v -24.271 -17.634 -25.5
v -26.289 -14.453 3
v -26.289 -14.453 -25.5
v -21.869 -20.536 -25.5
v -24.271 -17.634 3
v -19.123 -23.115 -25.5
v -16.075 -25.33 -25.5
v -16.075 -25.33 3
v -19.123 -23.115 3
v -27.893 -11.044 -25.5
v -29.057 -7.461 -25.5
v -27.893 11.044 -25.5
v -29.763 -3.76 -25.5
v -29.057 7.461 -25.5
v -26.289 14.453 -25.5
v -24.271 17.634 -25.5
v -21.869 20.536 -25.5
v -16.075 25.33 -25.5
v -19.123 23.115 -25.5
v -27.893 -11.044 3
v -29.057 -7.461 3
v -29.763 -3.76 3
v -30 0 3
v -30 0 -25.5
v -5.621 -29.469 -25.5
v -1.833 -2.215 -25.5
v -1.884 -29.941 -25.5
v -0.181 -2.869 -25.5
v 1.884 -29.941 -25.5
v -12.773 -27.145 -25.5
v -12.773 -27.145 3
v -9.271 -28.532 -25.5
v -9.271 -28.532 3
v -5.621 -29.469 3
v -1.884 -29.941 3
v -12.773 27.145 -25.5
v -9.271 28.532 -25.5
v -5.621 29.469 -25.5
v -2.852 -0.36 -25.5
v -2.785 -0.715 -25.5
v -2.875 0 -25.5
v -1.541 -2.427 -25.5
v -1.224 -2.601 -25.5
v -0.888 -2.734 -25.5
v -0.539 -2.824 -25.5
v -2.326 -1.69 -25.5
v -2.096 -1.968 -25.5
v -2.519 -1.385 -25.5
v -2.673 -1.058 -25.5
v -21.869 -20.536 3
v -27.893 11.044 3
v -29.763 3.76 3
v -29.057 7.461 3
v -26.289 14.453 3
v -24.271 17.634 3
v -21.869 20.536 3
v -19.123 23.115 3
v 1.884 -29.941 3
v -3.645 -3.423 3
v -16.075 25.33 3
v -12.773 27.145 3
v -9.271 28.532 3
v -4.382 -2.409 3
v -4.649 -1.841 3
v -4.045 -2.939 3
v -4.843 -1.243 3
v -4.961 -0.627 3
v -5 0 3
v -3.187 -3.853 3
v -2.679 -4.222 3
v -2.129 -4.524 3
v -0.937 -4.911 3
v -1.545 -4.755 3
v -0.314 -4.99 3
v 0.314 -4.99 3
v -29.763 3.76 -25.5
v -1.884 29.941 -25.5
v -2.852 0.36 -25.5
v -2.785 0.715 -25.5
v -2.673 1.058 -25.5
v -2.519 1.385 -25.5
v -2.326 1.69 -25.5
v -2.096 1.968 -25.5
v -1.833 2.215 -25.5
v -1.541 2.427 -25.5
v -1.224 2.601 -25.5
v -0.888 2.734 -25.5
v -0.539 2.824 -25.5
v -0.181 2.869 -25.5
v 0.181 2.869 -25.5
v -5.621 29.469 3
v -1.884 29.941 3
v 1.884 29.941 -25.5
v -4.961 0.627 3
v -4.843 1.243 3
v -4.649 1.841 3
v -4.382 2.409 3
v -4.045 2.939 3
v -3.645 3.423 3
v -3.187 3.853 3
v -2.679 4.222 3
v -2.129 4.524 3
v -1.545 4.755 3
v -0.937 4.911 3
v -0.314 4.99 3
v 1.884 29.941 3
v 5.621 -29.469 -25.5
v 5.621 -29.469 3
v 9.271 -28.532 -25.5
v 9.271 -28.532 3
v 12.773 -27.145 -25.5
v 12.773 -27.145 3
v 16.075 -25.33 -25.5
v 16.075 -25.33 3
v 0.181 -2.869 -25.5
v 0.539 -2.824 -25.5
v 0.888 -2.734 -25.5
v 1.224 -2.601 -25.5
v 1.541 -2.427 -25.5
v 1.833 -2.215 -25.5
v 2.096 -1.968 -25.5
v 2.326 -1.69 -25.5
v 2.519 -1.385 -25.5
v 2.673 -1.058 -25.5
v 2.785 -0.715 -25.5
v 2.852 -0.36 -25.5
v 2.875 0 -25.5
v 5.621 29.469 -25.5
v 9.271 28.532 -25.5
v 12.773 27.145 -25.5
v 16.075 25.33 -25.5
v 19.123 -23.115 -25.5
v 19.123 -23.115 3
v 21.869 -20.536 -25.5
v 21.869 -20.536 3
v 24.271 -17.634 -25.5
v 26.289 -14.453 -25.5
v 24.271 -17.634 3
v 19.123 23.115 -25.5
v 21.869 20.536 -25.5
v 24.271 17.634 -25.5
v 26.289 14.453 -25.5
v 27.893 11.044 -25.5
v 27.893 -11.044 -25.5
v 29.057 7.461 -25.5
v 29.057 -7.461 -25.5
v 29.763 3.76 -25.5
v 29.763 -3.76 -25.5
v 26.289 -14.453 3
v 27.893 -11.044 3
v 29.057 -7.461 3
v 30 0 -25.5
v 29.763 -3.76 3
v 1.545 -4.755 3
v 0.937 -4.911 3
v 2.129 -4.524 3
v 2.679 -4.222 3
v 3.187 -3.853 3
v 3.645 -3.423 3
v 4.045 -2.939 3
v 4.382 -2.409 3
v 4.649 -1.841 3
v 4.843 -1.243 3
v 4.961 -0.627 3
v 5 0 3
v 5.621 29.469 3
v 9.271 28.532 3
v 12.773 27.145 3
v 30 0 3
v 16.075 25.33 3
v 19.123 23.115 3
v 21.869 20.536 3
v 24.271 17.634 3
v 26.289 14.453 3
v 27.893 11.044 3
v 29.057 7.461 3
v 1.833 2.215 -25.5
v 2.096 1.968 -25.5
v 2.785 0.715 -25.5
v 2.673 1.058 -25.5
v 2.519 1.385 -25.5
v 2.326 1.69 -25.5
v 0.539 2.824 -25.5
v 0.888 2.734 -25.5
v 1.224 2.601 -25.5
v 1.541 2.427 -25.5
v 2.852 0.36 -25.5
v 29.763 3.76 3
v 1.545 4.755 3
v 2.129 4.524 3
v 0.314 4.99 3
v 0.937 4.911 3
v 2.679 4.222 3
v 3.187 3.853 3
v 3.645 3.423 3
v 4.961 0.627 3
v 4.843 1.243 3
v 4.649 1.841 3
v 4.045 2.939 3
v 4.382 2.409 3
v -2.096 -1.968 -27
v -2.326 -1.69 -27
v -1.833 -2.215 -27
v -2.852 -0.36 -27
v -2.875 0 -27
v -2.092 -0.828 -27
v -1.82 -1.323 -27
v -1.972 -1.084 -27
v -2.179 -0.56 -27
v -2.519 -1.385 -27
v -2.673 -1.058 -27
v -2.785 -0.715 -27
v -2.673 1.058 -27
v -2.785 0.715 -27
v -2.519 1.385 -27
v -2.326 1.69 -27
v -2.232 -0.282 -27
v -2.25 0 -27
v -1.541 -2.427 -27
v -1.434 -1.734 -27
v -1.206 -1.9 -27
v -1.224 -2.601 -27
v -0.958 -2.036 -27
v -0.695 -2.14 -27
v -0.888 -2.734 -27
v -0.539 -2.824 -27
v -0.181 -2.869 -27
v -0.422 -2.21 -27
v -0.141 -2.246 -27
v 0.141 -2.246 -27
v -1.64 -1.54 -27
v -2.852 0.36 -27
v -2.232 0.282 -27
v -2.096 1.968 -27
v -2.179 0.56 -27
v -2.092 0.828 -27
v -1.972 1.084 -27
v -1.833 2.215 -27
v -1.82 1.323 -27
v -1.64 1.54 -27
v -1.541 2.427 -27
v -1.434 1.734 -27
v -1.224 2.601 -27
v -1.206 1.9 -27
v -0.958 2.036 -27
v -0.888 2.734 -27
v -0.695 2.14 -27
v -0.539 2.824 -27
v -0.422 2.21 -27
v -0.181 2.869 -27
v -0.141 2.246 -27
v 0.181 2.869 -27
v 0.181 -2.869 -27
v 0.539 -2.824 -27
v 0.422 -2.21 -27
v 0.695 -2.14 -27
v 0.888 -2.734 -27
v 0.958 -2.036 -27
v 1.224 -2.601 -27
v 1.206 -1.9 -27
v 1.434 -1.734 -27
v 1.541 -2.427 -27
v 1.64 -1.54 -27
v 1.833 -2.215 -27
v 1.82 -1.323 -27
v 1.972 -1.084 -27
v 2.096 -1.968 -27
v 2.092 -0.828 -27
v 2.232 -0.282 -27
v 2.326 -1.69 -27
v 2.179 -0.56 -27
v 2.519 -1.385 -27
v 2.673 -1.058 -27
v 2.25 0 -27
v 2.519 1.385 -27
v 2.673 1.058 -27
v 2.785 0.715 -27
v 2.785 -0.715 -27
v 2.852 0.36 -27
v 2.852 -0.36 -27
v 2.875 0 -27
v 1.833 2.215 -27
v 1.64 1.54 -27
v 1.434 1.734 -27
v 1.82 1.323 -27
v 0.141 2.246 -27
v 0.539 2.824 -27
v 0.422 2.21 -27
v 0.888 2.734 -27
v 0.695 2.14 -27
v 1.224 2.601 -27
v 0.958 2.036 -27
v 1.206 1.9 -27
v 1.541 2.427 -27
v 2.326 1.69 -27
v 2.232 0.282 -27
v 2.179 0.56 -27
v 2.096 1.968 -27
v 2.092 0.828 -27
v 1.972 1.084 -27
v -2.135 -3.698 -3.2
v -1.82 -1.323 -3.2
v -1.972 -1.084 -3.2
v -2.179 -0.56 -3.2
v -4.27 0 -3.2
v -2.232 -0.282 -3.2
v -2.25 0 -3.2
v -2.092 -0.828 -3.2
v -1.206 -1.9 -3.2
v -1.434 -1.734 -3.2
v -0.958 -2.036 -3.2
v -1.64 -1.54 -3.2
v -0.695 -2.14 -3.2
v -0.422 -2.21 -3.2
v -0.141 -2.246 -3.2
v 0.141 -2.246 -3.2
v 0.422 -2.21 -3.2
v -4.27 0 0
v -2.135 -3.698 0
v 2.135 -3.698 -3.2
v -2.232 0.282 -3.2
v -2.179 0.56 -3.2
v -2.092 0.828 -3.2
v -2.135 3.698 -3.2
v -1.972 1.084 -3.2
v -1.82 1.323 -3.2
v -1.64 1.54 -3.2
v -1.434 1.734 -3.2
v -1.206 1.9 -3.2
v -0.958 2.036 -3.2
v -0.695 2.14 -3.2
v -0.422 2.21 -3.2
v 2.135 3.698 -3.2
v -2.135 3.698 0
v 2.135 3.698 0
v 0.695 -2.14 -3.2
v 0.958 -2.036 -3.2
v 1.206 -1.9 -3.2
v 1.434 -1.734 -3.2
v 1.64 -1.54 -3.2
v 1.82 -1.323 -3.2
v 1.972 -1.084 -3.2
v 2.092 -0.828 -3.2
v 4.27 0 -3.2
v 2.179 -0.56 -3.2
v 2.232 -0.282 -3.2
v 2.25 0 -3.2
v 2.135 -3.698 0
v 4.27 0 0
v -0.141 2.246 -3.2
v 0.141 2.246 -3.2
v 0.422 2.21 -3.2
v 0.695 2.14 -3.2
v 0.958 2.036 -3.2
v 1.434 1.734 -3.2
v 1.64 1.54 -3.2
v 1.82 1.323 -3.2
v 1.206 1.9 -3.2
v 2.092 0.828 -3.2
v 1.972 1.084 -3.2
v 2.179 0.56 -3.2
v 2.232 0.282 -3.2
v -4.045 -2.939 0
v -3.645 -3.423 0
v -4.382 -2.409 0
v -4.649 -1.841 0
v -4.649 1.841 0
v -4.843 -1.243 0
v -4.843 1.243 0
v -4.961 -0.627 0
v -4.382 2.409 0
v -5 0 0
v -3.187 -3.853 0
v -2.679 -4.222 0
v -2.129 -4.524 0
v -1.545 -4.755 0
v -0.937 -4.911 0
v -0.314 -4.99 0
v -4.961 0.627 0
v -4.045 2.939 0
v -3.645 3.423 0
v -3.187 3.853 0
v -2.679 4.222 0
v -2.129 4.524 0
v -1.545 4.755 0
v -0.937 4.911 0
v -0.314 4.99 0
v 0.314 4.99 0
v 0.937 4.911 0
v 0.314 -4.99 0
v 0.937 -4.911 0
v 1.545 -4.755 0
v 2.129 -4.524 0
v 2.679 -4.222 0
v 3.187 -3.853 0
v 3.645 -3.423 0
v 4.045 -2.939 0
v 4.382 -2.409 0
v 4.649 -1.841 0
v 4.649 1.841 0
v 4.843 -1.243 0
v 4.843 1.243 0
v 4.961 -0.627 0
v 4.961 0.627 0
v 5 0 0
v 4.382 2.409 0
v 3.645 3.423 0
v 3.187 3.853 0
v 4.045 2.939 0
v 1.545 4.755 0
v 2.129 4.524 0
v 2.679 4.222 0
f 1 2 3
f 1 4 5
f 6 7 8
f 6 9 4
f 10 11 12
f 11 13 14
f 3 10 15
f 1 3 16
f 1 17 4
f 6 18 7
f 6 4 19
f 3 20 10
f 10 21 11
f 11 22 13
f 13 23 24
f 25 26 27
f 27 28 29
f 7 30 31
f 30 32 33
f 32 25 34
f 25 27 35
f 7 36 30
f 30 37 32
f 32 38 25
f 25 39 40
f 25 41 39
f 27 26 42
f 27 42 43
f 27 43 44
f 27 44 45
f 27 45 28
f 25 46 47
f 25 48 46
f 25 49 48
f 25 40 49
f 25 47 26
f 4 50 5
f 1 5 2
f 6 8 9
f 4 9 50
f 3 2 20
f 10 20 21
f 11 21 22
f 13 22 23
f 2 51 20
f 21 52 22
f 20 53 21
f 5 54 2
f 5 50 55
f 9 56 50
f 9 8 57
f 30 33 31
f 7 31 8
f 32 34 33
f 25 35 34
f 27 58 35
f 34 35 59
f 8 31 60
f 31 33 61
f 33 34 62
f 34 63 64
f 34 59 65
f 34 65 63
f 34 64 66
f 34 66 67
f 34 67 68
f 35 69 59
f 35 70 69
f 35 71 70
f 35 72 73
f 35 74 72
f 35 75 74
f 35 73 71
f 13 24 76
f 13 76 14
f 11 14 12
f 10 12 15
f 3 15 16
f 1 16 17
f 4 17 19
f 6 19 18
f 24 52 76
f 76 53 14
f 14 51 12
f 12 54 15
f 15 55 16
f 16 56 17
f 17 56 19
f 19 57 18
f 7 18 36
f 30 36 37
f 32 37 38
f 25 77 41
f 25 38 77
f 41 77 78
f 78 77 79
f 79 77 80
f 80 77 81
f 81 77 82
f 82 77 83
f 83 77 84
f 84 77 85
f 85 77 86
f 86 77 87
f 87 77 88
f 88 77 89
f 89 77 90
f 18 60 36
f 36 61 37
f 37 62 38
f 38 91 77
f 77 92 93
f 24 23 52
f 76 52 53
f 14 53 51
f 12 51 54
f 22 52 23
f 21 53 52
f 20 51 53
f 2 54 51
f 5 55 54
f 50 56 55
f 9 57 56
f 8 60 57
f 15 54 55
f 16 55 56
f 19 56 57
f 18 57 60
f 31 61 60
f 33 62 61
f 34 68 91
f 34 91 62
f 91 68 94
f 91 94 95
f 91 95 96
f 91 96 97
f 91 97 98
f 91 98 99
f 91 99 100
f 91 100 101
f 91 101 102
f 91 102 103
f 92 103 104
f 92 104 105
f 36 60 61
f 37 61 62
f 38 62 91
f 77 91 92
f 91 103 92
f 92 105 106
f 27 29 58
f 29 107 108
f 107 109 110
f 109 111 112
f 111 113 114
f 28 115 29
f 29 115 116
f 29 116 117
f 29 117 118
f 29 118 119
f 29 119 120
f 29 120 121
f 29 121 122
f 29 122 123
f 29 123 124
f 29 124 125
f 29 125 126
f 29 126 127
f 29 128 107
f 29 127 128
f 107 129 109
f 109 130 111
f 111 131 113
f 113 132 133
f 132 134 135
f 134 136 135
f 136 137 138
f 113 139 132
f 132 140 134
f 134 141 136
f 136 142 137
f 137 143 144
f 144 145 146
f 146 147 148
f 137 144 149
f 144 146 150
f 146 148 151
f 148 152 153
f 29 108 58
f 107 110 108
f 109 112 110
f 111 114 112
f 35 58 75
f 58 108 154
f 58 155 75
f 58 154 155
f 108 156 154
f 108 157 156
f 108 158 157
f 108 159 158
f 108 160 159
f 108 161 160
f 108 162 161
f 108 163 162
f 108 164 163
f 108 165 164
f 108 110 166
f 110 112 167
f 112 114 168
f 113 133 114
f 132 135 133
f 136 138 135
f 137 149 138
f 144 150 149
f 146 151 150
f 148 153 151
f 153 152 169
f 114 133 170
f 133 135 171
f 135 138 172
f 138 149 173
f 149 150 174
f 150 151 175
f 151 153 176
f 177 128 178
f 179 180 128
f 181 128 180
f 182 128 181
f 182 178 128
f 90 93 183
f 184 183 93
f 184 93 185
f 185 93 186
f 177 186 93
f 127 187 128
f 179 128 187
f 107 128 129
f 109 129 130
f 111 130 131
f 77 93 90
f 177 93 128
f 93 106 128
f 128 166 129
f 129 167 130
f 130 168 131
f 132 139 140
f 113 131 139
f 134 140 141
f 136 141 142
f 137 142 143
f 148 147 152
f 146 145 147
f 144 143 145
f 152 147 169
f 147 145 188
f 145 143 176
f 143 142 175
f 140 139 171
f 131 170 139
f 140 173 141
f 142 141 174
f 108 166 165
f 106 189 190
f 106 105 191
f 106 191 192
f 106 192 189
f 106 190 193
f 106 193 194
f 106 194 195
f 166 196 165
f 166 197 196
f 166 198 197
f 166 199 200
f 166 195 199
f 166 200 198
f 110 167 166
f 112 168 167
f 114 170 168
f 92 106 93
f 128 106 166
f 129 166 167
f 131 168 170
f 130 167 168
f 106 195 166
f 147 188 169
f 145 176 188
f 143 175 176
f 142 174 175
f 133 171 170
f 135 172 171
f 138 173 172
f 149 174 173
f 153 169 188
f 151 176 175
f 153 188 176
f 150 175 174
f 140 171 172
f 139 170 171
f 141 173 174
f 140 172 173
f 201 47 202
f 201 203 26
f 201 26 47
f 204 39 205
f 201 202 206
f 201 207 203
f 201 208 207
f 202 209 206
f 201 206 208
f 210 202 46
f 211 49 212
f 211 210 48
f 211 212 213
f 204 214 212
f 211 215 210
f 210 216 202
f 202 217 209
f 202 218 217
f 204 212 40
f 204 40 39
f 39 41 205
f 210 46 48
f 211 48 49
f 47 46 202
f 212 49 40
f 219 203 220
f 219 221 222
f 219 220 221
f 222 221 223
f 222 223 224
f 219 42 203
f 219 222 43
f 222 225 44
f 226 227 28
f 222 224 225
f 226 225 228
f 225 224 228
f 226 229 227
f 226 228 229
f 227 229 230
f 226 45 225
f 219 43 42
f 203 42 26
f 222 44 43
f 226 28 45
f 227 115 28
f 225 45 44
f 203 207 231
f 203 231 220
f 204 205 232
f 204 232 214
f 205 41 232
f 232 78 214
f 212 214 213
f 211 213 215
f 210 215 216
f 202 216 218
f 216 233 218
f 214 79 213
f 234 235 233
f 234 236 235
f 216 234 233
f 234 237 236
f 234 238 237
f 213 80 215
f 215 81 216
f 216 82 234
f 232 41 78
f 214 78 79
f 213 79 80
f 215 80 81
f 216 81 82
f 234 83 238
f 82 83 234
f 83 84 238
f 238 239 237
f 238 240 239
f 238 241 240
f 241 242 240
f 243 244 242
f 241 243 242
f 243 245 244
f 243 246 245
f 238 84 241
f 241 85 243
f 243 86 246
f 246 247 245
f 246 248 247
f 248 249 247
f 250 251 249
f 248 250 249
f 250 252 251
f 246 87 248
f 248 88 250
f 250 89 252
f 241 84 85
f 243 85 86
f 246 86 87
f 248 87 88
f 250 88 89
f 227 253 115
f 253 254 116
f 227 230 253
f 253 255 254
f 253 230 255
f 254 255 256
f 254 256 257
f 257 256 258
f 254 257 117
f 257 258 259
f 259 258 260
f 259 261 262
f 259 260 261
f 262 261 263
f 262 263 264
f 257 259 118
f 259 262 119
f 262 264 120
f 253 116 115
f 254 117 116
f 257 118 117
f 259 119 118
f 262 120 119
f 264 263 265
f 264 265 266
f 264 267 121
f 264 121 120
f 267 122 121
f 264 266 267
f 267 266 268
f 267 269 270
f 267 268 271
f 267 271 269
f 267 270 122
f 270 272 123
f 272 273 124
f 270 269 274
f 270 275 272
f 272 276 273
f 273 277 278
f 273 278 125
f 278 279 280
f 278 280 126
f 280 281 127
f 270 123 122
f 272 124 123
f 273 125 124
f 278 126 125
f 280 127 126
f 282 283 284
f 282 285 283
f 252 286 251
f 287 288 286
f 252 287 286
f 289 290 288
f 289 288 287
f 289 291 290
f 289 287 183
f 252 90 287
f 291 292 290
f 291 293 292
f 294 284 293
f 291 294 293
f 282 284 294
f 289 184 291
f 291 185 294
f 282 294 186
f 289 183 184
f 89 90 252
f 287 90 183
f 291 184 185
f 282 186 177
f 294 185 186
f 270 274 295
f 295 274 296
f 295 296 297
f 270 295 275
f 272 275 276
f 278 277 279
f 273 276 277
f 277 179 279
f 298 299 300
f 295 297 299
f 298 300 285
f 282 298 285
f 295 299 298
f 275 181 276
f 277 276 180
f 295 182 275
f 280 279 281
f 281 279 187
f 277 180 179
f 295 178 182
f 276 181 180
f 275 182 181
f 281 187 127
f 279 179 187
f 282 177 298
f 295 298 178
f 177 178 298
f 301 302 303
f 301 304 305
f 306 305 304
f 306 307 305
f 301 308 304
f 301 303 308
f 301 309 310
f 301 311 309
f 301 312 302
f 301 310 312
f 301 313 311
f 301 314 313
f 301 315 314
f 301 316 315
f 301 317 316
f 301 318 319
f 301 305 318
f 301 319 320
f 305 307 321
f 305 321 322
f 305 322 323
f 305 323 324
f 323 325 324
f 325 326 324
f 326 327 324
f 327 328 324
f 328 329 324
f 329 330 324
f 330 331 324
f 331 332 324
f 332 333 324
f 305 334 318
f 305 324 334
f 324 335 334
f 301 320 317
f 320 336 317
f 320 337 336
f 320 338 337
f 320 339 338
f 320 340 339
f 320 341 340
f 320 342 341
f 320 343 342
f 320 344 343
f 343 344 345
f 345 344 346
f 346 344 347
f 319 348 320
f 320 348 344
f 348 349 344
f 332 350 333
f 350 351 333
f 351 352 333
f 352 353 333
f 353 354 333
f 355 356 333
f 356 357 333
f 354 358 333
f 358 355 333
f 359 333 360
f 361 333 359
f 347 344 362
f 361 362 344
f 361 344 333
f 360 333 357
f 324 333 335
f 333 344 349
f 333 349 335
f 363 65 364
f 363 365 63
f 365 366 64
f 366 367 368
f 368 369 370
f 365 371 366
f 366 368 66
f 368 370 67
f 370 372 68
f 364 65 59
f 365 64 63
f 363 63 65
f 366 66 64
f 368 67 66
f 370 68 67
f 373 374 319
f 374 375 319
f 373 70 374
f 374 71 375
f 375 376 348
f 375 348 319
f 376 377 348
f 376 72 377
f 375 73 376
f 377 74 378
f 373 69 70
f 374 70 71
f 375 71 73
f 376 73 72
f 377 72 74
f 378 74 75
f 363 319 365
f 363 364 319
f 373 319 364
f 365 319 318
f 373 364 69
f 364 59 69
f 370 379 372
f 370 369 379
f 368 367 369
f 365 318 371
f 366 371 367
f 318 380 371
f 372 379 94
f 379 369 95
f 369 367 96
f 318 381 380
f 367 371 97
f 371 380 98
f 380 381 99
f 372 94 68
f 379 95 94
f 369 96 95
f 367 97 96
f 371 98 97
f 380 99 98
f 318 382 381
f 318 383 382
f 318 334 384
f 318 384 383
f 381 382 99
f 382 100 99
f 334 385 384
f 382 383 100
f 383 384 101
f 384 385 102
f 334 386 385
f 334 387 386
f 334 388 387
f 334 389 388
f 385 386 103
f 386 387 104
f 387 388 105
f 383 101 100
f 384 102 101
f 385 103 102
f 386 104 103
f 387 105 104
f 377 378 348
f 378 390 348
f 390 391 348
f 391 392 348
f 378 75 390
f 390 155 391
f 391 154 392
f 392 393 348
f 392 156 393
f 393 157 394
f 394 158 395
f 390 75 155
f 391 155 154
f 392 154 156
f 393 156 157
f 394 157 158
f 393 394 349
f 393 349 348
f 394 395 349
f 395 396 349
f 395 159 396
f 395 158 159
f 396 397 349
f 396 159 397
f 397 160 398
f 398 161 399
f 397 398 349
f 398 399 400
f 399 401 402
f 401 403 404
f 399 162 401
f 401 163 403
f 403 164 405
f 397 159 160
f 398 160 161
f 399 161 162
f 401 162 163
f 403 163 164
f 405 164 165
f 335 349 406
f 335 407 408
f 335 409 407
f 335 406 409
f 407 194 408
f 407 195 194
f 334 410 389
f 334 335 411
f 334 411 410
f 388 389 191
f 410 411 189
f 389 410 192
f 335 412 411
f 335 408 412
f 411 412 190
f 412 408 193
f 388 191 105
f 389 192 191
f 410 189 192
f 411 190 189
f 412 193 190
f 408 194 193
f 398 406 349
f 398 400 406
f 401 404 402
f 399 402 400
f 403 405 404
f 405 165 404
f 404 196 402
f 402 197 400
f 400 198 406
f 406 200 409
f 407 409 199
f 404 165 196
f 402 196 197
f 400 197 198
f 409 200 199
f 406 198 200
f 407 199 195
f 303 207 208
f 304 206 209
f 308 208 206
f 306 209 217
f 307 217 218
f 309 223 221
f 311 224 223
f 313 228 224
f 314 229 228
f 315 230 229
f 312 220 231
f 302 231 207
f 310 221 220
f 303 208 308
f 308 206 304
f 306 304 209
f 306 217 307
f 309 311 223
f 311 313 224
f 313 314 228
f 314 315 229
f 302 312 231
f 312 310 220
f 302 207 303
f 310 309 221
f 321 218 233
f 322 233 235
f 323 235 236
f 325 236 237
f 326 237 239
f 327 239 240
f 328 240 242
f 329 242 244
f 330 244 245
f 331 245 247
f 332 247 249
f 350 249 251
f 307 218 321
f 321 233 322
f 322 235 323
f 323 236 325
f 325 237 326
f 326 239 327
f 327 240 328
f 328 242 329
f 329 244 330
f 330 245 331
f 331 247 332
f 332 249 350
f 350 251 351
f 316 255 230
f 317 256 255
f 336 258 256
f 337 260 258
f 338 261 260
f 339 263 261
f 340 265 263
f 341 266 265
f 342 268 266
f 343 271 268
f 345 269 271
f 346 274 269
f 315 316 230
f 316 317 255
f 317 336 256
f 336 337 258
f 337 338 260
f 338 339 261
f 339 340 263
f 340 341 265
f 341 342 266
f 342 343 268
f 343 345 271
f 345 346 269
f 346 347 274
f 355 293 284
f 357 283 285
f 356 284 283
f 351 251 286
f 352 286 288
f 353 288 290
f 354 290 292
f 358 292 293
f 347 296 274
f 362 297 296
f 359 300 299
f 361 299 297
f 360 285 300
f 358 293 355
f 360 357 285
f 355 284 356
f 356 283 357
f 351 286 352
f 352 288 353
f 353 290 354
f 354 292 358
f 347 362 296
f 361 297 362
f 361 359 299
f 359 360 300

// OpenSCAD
$fn = 50;


difference() {
	union() {
		translate(v = [0, 0, -25.5000000000]) {
			cylinder(h = 28.5000000000, r = 30.0000000000);
		}
		#translate(v = [0, 0, -27.0000000000]) {
			cylinder(h = 27, r = 2.8750000000);
		}
	}
	union() {
		translate(v = [0, 0, 0]) {
			rotate(a = [0, 0, 0]) {
				difference() {
					union() {
						translate(v = [0, 0, -3.2000000000]) {
							linear_extrude(height = 3.2000000000) {
								polygon(points = [[4.2698000000, 0.0000000000], [2.1349000000, 3.6977552691], [-2.1349000000, 3.6977552691], [-4.2698000000, 0.0000000000], [-2.1349000000, -3.6977552691], [2.1349000000, -3.6977552691]]);
							}
						}
					}
					union();
				}
			}
		}
		#cylinder(h = 3, r = 5.0000000000);
		#translate(v = [0, 0, -100.0000000000]) {
			cylinder(h = 200, r = 2.2500000000);
		}
	}
}
